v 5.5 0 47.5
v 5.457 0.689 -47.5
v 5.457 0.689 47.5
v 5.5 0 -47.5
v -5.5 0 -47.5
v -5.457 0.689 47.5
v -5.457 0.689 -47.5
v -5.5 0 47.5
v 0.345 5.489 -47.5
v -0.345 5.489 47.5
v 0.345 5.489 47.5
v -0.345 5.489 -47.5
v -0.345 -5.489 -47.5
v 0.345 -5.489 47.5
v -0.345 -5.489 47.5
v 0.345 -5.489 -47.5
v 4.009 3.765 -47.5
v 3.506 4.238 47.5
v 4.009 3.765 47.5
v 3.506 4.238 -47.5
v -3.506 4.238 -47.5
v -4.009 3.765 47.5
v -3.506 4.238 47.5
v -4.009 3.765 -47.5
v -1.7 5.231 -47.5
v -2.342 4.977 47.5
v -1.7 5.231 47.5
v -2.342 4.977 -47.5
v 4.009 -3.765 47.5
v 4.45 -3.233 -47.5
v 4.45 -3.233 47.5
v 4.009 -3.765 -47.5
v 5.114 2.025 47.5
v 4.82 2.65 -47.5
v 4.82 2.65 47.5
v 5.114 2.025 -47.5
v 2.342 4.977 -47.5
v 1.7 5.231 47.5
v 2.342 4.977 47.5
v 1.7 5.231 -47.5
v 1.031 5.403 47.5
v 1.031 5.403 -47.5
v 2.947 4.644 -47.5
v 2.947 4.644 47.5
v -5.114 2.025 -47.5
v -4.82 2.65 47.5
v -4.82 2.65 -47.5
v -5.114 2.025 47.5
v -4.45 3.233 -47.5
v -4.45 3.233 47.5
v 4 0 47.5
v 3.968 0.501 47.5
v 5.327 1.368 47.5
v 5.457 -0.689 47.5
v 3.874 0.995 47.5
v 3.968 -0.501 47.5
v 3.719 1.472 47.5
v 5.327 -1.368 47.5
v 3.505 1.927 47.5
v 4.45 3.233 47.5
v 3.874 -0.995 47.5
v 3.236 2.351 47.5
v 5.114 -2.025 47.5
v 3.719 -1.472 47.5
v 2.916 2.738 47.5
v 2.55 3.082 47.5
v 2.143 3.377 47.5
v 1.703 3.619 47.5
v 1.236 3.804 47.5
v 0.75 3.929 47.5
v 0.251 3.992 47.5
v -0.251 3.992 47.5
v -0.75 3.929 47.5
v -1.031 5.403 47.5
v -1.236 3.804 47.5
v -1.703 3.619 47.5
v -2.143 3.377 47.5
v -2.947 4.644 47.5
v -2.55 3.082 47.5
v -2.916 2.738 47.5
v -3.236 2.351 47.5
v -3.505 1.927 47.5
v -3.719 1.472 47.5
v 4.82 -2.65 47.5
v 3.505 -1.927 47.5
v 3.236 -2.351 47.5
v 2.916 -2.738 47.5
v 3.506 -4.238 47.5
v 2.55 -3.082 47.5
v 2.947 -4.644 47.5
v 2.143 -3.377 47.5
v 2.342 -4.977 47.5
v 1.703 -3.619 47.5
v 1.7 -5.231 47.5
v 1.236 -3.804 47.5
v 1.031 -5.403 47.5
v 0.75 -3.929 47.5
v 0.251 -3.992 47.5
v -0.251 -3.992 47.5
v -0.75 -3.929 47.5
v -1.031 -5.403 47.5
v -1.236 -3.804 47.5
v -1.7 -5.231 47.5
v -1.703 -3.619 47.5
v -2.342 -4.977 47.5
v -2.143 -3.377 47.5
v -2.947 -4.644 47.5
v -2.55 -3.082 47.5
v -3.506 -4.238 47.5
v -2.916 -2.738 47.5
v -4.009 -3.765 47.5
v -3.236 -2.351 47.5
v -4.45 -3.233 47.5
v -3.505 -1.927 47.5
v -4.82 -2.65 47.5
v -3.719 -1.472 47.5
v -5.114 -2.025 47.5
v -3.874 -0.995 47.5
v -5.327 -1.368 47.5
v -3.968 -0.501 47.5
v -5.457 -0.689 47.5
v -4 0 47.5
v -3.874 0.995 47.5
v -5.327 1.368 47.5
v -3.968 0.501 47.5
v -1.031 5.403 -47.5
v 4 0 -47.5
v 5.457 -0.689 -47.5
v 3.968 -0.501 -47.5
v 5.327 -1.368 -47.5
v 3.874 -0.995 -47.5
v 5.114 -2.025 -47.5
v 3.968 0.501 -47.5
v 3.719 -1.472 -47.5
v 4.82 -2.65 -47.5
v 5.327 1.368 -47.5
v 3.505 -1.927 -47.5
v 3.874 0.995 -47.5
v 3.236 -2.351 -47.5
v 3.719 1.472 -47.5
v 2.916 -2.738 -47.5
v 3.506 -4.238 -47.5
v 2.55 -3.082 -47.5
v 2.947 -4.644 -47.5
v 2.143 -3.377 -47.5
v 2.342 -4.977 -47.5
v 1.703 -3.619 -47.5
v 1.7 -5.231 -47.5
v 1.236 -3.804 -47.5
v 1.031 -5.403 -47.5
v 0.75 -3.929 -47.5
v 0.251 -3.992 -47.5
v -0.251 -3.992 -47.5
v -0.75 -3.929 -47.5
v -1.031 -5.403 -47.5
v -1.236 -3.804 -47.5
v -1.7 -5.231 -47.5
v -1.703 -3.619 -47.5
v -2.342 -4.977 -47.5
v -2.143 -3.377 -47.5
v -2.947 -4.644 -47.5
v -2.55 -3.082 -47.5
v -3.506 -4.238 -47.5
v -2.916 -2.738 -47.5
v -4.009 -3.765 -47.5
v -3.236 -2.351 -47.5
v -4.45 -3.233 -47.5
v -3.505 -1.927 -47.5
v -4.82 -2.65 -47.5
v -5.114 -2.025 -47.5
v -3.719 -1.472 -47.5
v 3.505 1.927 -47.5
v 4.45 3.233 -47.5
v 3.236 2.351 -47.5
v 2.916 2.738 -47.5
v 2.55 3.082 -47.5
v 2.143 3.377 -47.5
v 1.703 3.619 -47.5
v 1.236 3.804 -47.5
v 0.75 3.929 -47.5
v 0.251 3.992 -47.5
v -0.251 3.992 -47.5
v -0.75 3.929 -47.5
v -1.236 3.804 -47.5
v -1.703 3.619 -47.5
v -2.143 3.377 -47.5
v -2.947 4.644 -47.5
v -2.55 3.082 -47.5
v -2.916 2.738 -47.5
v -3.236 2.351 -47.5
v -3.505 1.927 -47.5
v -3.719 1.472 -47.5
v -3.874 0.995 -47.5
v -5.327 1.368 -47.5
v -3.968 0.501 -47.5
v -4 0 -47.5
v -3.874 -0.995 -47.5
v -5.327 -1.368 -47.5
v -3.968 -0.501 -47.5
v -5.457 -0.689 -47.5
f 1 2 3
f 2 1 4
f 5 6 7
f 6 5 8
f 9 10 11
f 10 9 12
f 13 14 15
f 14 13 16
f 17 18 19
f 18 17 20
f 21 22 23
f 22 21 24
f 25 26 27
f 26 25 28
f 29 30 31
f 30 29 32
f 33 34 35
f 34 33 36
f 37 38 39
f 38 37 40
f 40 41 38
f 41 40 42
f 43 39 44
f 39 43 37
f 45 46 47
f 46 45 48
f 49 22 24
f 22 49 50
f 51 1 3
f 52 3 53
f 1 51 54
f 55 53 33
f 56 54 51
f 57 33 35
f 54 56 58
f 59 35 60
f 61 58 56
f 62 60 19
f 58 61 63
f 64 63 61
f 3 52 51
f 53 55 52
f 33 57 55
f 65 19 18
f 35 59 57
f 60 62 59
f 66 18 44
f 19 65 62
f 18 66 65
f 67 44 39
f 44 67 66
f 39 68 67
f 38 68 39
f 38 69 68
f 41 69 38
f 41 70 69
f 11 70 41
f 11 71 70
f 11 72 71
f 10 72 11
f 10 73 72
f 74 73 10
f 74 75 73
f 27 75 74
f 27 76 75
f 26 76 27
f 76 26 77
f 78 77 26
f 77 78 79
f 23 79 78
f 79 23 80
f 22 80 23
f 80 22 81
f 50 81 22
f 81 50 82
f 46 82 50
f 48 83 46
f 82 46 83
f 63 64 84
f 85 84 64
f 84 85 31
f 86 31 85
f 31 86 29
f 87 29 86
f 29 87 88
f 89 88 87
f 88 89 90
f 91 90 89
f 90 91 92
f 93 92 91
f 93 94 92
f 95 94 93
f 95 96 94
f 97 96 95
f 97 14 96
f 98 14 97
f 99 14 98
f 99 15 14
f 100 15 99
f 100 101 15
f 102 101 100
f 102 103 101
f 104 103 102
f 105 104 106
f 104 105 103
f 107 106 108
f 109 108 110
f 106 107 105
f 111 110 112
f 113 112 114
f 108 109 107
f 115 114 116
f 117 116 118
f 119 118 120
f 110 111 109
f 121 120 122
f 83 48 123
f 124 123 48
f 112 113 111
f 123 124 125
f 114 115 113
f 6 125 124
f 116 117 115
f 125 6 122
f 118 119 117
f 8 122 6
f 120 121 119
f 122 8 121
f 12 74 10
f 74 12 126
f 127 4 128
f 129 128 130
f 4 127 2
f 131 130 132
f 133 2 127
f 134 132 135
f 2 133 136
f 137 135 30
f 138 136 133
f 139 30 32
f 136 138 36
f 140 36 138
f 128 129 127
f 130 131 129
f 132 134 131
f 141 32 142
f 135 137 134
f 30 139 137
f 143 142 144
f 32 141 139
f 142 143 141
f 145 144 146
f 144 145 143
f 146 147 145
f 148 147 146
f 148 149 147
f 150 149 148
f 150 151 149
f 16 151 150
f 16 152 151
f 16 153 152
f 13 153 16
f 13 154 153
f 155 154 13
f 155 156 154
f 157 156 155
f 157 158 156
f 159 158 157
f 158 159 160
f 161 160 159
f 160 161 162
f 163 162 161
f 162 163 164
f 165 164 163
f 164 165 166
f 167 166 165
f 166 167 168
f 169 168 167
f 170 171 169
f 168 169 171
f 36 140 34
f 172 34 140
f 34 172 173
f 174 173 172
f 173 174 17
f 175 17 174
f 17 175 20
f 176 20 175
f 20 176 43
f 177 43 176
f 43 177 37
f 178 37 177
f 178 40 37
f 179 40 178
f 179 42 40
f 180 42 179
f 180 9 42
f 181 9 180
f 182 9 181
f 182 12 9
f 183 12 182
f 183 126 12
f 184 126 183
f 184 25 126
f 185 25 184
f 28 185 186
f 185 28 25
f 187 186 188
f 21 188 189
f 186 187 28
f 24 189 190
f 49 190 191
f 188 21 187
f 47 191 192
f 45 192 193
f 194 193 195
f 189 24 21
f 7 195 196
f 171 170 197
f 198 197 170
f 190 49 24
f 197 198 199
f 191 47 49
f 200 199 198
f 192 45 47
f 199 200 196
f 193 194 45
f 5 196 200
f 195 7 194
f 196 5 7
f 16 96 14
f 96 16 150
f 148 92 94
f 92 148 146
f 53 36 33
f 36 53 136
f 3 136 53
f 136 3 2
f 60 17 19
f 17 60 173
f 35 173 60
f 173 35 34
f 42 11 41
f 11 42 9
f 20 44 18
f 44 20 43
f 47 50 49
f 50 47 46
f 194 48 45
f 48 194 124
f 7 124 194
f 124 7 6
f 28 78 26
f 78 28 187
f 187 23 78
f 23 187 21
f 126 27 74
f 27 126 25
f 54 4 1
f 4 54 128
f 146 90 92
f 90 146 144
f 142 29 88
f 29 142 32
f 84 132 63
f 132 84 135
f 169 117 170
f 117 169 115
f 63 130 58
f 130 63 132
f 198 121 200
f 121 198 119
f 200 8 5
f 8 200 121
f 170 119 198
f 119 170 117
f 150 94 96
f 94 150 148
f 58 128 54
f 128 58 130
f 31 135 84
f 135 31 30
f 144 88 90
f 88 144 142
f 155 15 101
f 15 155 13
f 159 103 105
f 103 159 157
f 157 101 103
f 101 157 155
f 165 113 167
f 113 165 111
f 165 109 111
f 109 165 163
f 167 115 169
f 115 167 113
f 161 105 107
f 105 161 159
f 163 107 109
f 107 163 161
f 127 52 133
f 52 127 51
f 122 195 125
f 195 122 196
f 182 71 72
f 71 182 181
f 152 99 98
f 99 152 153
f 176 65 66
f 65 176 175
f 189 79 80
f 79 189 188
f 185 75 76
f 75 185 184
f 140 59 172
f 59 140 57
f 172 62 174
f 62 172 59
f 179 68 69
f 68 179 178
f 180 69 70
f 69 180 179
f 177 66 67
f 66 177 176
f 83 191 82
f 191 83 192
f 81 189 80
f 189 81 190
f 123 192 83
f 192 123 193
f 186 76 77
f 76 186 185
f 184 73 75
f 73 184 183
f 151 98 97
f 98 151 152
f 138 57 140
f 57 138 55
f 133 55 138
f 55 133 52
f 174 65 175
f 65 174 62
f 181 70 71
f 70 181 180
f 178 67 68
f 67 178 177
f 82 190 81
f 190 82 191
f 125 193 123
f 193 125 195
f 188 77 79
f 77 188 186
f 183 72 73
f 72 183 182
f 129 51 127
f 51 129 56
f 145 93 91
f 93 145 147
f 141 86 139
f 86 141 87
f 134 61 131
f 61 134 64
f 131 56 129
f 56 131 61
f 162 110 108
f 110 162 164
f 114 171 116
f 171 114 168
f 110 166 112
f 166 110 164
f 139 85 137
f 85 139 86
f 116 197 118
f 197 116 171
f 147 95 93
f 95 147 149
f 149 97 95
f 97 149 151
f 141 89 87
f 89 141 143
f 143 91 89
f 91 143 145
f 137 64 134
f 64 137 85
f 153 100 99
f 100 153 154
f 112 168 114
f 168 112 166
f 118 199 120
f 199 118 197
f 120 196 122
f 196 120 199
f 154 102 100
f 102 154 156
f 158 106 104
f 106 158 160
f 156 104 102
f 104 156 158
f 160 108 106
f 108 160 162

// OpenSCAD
$fn = 50;


difference() {
	union() {
		translate(v = [0, 0, -47.5000000000]) {
			cylinder(h = 95, r = 5.5000000000);
		}
	}
	union() {
		translate(v = [0, 0, -100.0000000000]) {
			cylinder(h = 200, r = 4);
		}
	}
}
